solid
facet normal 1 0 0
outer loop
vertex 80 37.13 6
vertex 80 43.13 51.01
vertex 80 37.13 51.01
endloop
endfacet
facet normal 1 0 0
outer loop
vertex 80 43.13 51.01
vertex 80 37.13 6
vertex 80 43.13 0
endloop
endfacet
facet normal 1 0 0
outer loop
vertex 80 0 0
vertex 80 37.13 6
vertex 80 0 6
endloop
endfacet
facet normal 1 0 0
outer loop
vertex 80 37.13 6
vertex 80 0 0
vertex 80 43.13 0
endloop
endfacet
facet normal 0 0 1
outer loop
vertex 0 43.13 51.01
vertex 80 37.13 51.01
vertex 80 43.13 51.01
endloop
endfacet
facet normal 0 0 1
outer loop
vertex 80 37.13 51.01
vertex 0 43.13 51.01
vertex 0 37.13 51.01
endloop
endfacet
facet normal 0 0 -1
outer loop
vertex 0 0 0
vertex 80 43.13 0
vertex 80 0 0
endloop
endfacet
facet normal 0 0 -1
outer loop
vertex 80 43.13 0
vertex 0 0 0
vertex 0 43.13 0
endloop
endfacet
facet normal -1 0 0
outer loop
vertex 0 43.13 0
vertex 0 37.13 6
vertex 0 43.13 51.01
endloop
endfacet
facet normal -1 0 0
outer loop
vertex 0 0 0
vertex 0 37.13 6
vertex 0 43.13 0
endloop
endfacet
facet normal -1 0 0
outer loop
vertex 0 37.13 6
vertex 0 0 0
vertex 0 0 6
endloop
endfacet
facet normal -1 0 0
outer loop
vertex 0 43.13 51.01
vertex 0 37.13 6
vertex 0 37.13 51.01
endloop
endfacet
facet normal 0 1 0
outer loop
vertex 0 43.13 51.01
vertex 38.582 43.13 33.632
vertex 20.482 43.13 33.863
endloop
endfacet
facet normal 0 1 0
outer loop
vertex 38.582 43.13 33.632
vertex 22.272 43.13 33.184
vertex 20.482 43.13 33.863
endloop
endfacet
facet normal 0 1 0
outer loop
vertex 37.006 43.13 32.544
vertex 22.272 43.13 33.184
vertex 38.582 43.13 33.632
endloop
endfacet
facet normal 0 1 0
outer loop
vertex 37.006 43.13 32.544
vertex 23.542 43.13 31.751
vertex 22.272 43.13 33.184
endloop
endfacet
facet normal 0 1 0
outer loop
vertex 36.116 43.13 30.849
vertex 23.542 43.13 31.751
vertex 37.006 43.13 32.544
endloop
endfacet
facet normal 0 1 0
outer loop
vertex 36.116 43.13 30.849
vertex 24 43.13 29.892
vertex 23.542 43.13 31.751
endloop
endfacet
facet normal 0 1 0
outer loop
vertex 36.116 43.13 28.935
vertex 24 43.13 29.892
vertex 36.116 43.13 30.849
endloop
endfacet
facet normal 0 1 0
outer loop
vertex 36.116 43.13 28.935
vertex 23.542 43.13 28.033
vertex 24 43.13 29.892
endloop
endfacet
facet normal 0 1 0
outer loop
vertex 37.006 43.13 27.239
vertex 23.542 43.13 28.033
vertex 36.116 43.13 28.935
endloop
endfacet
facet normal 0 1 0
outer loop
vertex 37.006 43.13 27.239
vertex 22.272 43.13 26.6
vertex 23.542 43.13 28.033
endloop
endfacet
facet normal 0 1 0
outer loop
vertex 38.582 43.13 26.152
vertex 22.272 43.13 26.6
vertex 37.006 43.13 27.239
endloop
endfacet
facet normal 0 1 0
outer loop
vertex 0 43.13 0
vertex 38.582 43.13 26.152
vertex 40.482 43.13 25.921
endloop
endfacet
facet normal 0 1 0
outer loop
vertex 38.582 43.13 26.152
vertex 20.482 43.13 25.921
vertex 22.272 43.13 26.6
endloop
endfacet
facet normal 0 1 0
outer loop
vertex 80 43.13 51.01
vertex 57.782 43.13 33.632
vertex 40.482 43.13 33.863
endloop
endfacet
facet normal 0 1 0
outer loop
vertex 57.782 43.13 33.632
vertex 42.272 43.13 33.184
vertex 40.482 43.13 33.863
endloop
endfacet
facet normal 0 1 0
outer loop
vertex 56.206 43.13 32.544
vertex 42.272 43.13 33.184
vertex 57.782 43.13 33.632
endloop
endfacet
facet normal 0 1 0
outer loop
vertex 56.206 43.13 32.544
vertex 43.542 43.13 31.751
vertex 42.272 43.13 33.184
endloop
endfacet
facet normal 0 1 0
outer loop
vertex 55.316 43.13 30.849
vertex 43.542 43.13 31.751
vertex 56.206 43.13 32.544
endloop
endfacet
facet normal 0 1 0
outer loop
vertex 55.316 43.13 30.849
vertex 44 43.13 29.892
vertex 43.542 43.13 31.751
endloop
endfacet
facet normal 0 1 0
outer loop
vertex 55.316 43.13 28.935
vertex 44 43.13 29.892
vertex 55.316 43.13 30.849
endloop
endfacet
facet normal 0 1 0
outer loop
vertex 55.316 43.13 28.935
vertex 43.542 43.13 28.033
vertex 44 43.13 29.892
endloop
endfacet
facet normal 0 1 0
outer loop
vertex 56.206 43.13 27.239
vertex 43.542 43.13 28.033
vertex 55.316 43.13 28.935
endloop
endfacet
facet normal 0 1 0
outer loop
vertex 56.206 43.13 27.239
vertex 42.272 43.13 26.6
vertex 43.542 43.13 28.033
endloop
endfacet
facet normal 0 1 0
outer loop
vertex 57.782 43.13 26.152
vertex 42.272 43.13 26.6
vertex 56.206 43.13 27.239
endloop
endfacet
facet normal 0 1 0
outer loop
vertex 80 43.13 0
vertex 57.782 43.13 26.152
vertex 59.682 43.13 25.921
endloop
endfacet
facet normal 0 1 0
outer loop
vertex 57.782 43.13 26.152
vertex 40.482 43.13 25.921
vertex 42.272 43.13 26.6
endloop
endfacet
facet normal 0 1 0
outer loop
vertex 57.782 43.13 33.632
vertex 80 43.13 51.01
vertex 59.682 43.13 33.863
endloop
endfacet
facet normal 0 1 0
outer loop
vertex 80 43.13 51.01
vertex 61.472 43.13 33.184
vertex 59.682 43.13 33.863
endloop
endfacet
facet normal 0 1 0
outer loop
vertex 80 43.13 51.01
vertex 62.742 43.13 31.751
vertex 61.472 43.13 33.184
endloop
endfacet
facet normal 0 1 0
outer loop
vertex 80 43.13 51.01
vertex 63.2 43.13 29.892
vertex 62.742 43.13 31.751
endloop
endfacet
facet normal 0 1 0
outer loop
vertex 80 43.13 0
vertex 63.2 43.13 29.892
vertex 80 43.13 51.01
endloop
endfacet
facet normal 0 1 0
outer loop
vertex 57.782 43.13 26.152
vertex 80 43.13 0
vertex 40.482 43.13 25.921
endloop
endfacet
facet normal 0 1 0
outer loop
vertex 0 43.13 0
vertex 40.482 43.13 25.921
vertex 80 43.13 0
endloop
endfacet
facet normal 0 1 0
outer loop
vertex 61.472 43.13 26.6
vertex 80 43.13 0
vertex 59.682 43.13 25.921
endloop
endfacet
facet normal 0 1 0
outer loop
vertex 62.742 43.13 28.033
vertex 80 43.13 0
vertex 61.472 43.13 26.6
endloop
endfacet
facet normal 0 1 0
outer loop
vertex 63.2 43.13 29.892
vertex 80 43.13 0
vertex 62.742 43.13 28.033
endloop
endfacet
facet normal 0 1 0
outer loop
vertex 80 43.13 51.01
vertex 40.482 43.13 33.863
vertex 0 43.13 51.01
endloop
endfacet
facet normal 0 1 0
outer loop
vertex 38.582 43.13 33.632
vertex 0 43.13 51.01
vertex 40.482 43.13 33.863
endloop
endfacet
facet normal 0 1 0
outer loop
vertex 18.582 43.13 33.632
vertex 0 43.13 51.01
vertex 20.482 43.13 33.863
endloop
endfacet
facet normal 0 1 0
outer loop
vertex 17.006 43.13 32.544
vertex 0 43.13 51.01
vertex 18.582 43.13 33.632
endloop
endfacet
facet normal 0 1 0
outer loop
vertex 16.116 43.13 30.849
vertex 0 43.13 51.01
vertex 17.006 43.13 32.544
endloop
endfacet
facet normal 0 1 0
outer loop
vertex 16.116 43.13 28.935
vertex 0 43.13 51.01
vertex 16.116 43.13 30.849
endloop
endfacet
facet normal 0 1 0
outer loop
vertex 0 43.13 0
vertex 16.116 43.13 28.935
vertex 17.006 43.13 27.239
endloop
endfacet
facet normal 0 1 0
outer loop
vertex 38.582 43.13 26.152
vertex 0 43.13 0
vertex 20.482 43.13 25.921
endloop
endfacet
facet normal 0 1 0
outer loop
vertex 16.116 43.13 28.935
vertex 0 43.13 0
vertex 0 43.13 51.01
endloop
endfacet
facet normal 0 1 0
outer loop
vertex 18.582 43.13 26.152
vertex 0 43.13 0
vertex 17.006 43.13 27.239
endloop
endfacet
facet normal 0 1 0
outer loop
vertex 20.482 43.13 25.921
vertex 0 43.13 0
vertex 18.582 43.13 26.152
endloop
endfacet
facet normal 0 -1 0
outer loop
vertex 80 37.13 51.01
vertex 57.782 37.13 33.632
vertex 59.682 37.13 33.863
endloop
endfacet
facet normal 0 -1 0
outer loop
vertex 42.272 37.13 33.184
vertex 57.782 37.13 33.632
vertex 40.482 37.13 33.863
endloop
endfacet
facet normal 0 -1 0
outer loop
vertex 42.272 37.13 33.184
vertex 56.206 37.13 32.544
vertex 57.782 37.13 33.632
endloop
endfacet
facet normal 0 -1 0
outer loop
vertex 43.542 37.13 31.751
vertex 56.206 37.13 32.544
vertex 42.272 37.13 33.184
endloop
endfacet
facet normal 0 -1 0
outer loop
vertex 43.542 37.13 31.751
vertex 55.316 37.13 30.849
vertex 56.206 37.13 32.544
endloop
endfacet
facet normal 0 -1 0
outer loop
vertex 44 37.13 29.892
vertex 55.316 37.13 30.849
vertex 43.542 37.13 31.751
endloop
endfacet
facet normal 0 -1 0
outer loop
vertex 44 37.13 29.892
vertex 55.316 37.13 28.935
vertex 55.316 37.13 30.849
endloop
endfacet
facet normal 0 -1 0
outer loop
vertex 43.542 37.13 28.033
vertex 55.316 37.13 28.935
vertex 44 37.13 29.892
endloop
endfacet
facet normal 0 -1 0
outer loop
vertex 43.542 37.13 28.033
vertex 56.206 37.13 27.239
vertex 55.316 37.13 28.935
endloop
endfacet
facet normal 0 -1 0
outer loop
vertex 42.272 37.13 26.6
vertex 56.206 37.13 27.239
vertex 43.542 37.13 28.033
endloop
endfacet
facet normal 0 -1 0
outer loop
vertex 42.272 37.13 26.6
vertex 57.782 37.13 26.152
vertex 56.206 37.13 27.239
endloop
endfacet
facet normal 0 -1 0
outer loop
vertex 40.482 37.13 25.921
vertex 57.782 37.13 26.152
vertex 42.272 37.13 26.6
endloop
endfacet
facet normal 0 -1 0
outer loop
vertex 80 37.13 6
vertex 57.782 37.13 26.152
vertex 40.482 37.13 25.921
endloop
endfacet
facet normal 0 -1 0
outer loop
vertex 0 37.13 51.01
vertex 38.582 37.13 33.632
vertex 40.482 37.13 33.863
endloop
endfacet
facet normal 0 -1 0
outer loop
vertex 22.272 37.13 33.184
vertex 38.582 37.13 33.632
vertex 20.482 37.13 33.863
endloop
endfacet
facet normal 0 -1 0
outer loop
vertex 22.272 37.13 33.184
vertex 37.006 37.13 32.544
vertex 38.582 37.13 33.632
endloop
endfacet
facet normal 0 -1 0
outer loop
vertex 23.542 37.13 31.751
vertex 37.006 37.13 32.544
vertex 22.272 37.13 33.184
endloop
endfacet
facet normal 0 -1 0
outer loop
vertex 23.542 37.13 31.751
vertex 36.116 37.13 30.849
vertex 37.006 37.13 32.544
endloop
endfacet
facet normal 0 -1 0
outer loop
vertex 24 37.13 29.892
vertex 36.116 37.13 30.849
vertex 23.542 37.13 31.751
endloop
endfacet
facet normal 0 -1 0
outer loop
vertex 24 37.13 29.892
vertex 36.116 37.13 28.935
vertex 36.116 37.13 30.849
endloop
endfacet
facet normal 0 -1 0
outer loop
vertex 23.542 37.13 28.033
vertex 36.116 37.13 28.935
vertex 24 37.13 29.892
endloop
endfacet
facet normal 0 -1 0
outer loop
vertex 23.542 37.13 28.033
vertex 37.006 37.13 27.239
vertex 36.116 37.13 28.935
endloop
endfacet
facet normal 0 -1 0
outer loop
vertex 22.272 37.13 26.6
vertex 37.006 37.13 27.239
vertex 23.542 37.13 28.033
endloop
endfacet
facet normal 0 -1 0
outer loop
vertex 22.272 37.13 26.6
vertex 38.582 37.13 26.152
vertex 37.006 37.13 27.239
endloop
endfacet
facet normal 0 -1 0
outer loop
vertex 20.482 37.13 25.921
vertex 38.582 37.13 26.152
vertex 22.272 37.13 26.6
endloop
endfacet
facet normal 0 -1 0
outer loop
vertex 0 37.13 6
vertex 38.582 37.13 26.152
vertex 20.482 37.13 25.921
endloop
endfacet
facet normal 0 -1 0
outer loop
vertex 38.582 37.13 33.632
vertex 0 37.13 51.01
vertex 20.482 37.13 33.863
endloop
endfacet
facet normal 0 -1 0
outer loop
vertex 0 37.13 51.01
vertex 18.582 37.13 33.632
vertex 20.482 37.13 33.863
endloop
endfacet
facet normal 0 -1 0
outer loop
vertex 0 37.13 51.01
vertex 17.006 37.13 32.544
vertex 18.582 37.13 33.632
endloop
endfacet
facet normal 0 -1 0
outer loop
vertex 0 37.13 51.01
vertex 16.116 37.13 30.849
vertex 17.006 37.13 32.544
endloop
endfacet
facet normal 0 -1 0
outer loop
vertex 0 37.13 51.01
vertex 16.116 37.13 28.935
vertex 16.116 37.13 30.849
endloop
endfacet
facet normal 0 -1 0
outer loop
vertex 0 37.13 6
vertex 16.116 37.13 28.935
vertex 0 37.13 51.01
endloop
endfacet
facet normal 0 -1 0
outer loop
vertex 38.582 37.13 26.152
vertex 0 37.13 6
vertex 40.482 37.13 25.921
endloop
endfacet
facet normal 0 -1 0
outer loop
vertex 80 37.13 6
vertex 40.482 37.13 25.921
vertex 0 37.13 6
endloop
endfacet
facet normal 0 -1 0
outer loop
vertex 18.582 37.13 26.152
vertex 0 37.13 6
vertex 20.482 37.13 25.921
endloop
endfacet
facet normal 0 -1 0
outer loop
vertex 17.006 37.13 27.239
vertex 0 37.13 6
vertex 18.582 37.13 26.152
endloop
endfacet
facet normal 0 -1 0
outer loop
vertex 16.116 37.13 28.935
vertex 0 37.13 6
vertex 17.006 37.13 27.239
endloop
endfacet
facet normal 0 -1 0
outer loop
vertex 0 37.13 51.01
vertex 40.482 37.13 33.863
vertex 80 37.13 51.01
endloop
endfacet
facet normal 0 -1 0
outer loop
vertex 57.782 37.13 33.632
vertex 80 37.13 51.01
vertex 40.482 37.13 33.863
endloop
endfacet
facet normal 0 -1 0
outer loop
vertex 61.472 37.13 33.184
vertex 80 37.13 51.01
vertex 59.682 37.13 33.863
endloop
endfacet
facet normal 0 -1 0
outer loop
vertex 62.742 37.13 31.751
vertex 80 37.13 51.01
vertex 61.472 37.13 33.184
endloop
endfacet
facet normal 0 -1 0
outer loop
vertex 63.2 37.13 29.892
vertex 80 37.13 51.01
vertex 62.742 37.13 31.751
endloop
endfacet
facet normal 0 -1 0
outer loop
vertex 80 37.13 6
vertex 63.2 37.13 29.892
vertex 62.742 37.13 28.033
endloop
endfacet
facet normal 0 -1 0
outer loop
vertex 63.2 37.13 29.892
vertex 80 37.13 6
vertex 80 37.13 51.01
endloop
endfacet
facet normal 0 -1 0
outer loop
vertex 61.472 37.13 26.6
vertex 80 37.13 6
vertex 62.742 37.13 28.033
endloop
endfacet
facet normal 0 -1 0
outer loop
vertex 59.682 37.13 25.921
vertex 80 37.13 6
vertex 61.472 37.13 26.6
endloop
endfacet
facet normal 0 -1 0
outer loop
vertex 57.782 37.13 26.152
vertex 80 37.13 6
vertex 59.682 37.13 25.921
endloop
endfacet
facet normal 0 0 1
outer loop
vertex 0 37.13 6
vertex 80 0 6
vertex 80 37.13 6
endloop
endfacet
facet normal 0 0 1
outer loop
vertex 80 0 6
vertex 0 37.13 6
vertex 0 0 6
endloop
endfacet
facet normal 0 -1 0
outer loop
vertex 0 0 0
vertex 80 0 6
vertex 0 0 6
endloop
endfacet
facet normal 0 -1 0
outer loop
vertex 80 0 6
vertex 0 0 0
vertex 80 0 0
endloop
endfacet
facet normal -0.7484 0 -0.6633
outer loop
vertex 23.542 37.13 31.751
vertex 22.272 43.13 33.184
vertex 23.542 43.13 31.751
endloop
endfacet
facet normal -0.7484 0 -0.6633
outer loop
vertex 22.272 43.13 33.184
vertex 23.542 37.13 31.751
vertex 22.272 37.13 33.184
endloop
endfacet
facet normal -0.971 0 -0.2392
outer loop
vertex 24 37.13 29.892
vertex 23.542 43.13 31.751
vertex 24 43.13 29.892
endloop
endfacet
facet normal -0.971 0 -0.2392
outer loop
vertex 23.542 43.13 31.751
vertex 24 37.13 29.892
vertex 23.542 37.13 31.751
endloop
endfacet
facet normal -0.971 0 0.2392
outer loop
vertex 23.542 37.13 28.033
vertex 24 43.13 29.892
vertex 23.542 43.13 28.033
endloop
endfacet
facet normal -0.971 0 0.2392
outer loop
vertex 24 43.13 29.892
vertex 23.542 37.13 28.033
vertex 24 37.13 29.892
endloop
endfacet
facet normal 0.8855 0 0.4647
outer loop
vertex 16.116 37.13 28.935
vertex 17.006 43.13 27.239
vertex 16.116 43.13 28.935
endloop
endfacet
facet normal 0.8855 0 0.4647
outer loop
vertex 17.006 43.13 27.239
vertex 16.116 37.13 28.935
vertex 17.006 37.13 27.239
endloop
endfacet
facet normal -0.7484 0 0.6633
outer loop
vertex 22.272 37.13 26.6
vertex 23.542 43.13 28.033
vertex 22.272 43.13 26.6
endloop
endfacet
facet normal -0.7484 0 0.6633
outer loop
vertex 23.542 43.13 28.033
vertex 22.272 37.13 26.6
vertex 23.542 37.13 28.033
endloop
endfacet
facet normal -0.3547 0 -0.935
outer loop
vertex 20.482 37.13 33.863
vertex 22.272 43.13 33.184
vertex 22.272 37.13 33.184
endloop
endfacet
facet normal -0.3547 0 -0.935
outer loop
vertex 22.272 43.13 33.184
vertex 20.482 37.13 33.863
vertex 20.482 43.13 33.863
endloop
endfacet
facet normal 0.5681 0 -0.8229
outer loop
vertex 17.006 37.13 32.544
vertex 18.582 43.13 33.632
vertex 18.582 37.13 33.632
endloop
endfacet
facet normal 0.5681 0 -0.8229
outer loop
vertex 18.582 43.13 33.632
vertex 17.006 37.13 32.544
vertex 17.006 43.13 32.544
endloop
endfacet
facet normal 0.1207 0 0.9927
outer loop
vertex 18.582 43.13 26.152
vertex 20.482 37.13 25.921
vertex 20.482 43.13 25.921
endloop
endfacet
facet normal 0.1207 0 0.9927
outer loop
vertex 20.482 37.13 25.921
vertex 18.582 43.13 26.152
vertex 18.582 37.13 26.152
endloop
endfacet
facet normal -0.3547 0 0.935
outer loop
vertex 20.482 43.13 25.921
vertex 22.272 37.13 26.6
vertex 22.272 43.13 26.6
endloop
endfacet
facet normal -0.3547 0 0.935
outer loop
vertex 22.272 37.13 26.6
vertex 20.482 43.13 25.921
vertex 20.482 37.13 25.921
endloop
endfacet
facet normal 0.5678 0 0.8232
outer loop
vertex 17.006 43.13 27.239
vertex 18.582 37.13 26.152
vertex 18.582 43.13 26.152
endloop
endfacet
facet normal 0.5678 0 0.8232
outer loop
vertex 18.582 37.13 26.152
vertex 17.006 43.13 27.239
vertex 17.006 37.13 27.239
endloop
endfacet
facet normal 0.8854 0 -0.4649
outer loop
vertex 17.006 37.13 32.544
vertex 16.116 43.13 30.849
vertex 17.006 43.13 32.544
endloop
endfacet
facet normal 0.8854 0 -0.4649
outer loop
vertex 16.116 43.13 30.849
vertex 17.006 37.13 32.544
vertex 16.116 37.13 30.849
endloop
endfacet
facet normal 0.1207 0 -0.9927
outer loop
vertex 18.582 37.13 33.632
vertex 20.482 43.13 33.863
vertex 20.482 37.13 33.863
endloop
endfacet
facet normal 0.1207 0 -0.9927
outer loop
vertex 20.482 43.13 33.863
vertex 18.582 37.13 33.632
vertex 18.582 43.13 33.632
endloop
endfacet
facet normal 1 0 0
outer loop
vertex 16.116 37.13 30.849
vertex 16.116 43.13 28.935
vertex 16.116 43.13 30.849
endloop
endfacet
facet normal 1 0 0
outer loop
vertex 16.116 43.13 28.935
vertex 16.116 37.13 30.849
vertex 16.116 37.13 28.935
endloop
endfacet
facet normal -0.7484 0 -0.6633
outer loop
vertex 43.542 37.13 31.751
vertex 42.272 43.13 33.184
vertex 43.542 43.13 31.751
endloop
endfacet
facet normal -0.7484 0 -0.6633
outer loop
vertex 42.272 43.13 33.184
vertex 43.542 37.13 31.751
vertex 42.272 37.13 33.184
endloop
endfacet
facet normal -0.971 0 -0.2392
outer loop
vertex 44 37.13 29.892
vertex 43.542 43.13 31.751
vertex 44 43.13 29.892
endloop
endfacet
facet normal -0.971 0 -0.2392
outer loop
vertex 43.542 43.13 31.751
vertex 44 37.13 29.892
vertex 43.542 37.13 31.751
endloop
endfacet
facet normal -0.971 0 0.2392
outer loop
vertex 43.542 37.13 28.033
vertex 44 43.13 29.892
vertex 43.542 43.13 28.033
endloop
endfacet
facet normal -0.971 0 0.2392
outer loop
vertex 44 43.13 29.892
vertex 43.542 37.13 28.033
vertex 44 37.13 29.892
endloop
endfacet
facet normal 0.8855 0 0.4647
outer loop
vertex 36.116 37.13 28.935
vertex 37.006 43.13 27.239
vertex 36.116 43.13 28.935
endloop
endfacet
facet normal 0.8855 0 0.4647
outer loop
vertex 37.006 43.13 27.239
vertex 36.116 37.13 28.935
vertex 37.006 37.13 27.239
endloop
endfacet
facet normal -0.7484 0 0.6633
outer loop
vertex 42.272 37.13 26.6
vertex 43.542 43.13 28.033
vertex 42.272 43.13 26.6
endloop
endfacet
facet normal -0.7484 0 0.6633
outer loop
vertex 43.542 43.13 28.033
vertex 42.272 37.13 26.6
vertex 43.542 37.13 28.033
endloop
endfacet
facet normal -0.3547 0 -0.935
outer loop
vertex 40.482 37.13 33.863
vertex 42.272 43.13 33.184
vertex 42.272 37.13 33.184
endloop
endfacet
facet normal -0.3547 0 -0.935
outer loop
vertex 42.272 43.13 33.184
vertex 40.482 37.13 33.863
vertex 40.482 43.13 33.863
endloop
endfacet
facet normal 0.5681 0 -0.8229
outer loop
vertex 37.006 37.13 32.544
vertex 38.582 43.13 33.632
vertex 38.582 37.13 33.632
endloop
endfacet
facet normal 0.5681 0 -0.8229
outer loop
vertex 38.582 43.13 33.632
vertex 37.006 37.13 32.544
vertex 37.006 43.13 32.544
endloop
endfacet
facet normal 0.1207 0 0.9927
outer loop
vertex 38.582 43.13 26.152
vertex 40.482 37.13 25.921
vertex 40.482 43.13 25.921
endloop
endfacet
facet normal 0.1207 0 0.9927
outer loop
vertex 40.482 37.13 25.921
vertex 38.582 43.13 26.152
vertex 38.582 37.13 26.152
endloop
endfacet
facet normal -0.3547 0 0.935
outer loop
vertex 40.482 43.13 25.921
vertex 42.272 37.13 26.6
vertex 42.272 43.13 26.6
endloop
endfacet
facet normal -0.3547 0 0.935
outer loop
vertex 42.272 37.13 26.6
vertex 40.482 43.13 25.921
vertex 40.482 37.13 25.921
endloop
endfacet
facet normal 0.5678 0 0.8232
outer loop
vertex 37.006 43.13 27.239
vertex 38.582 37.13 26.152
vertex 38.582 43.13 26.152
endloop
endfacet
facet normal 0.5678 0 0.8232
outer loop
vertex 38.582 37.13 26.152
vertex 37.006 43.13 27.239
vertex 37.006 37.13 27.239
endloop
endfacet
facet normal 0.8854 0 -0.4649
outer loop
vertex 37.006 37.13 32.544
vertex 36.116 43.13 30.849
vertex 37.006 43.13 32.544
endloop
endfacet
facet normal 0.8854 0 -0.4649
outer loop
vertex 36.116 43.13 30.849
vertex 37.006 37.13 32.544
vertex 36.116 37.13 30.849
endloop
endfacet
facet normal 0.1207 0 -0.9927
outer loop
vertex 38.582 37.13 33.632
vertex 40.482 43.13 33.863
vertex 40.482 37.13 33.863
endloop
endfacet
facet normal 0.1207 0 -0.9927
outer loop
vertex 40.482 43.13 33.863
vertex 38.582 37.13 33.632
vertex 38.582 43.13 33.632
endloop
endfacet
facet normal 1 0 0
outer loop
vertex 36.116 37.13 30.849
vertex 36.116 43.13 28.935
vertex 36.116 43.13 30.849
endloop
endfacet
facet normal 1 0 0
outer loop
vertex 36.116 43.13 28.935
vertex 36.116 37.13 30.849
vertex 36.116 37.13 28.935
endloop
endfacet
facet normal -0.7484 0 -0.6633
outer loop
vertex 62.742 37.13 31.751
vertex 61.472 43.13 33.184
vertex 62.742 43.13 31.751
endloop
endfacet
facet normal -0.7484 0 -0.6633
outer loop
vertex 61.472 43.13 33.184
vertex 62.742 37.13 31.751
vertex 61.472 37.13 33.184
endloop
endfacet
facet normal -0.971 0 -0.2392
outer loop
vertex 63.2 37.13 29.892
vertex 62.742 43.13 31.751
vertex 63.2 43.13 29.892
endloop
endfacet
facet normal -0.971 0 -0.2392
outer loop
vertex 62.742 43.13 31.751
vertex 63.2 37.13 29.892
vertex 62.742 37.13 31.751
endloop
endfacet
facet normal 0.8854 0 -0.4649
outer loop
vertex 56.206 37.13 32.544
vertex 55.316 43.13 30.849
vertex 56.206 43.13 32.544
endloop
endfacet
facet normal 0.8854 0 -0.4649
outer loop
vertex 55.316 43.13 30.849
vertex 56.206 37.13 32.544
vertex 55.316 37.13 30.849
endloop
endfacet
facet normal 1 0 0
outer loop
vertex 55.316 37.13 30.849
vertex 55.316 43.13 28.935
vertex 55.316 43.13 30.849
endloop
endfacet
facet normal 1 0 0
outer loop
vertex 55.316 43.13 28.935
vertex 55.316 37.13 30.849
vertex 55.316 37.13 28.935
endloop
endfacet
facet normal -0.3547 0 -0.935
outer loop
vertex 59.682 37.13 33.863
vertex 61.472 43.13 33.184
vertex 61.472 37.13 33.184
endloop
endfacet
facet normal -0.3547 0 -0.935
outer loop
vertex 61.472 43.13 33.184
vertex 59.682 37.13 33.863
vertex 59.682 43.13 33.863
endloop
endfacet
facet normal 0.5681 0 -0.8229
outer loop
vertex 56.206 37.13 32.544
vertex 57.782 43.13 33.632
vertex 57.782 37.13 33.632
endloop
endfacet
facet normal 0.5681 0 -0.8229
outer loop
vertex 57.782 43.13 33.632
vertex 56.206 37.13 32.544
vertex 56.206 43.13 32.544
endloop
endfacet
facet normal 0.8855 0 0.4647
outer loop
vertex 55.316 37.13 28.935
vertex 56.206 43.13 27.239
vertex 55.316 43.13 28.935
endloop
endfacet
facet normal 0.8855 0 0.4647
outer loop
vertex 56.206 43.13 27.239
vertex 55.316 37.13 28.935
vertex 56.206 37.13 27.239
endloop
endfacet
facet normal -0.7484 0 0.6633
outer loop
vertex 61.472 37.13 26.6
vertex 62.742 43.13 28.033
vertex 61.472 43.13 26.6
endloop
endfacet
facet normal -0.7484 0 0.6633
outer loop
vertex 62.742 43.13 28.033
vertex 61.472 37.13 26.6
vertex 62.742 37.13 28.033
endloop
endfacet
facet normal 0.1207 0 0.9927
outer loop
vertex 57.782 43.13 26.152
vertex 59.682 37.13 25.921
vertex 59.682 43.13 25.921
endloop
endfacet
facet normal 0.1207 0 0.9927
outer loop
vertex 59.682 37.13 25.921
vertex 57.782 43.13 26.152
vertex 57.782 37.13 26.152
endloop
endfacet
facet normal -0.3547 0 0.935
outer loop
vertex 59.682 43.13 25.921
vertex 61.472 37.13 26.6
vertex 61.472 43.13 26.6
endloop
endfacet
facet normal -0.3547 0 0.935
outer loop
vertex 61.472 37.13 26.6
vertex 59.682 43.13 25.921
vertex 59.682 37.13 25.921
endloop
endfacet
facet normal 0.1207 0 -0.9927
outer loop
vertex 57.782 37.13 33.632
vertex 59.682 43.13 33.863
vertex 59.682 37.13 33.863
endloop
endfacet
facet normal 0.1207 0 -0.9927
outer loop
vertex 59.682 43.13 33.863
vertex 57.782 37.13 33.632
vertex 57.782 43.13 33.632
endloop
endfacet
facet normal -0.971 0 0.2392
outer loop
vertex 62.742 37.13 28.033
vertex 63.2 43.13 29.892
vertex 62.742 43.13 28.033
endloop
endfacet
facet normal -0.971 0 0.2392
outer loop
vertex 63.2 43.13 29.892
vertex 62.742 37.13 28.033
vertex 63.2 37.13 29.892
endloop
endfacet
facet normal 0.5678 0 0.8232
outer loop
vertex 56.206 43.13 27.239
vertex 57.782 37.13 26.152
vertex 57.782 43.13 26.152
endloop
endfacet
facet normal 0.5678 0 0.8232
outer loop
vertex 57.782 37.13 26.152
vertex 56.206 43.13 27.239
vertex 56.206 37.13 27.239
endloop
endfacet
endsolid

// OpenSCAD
/* doodle-meta {"version":1,"parameters":{"width":{"label":"Overall width","description":"Changes the overall width of the bracket","unit":"mm","feature":"body_width"},"depth":{"label":"Overall depth","description":"Changes the overall depth of the bracket","unit":"mm","feature":"body_depth"},"height":{"label":"Overall height","description":"Changes the overall height of the bracket","unit":"mm","feature":"body_height"},"wall_thickness":{"label":"Wall thickness","description":"Changes the thickness of the bracket walls","unit":"mm","feature":"wall_thickness"},"hole_diameter":{"label":"Hole diameter","description":"Changes the diameter of the mounting holes","unit":"mm","feature":"holes"}},"features":{"body_width":{"kind":"dimension","axis":"x","label":"Overall width"},"body_depth":{"kind":"dimension","axis":"y","label":"Overall depth"},"body_height":{"kind":"dimension","axis":"z","label":"Overall height"},"wall_thickness":{"kind":"region","label":"Wall thickness","min":[0,0,0],"max":[{"parameter":"wall_thickness"},{"parameter":"depth"},{"parameter":"height"}]},"holes":{"kind":"region","label":"Mounting holes","min":[{"parameter":"width","scale":0.15},{"parameter":"wall_thickness"},{"parameter":"height","scale":0.3}],"max":[{"parameter":"width","scale":0.85},{"parameter":"wall_thickness","scale":1.0},{"parameter":"height","scale":0.7}]}}} */

// Top-level parameters (user-editable)
width = 80.0;
depth = 43.13;
height = 51.01;
wall_thickness = 6.0;
hole_diameter = 8.0;

// Derived sizes (not user-editable)
// Source front-view opening centroids: u = 0.25, 0.50, 0.74 (left inset ~25%, right inset ~26%).
// Place holes at those fractions of the width so they are inset from both edges.
hole_u_left  = 0.25;
hole_u_mid   = 0.50;
hole_u_right = 0.74;

// Front view: v is measured downward; Z = (1 - v) * height.
// Source centroid v ~ 0.414 -> Z = (1 - 0.414) * height.
hole_z_pos = (1.0 - 0.414) * height;

// Modules
module l_bracket_body() {
    // Vertical wall (back)
    translate([0, depth - wall_thickness, 0])
        cube([width, wall_thickness, height]);

    // Horizontal base (bottom)
    translate([0, 0, 0])
        cube([width, depth, wall_thickness]);
}

module hole_cutter() {
    // Cylinder axis along Y to cut through the vertical wall (in XZ plane, thickness along Y).
    // Wall spans Y from (depth - wall_thickness) to depth.
    // center=true cylinder traverses the wall with an epsilon margin.
    translate([0, depth - wall_thickness/2, 0])
        rotate([90, 0, 0])
            cylinder(h = wall_thickness + 2, d = hole_diameter, center=true);
}

// Main design
difference() {
    l_bracket_body();

    // Three holes positioned at 25%, 50%, 74% of the width.
    for (u = [hole_u_left, hole_u_mid, hole_u_right]) {
        translate([u * width, 0, hole_z_pos])
            hole_cutter();
    }
}
